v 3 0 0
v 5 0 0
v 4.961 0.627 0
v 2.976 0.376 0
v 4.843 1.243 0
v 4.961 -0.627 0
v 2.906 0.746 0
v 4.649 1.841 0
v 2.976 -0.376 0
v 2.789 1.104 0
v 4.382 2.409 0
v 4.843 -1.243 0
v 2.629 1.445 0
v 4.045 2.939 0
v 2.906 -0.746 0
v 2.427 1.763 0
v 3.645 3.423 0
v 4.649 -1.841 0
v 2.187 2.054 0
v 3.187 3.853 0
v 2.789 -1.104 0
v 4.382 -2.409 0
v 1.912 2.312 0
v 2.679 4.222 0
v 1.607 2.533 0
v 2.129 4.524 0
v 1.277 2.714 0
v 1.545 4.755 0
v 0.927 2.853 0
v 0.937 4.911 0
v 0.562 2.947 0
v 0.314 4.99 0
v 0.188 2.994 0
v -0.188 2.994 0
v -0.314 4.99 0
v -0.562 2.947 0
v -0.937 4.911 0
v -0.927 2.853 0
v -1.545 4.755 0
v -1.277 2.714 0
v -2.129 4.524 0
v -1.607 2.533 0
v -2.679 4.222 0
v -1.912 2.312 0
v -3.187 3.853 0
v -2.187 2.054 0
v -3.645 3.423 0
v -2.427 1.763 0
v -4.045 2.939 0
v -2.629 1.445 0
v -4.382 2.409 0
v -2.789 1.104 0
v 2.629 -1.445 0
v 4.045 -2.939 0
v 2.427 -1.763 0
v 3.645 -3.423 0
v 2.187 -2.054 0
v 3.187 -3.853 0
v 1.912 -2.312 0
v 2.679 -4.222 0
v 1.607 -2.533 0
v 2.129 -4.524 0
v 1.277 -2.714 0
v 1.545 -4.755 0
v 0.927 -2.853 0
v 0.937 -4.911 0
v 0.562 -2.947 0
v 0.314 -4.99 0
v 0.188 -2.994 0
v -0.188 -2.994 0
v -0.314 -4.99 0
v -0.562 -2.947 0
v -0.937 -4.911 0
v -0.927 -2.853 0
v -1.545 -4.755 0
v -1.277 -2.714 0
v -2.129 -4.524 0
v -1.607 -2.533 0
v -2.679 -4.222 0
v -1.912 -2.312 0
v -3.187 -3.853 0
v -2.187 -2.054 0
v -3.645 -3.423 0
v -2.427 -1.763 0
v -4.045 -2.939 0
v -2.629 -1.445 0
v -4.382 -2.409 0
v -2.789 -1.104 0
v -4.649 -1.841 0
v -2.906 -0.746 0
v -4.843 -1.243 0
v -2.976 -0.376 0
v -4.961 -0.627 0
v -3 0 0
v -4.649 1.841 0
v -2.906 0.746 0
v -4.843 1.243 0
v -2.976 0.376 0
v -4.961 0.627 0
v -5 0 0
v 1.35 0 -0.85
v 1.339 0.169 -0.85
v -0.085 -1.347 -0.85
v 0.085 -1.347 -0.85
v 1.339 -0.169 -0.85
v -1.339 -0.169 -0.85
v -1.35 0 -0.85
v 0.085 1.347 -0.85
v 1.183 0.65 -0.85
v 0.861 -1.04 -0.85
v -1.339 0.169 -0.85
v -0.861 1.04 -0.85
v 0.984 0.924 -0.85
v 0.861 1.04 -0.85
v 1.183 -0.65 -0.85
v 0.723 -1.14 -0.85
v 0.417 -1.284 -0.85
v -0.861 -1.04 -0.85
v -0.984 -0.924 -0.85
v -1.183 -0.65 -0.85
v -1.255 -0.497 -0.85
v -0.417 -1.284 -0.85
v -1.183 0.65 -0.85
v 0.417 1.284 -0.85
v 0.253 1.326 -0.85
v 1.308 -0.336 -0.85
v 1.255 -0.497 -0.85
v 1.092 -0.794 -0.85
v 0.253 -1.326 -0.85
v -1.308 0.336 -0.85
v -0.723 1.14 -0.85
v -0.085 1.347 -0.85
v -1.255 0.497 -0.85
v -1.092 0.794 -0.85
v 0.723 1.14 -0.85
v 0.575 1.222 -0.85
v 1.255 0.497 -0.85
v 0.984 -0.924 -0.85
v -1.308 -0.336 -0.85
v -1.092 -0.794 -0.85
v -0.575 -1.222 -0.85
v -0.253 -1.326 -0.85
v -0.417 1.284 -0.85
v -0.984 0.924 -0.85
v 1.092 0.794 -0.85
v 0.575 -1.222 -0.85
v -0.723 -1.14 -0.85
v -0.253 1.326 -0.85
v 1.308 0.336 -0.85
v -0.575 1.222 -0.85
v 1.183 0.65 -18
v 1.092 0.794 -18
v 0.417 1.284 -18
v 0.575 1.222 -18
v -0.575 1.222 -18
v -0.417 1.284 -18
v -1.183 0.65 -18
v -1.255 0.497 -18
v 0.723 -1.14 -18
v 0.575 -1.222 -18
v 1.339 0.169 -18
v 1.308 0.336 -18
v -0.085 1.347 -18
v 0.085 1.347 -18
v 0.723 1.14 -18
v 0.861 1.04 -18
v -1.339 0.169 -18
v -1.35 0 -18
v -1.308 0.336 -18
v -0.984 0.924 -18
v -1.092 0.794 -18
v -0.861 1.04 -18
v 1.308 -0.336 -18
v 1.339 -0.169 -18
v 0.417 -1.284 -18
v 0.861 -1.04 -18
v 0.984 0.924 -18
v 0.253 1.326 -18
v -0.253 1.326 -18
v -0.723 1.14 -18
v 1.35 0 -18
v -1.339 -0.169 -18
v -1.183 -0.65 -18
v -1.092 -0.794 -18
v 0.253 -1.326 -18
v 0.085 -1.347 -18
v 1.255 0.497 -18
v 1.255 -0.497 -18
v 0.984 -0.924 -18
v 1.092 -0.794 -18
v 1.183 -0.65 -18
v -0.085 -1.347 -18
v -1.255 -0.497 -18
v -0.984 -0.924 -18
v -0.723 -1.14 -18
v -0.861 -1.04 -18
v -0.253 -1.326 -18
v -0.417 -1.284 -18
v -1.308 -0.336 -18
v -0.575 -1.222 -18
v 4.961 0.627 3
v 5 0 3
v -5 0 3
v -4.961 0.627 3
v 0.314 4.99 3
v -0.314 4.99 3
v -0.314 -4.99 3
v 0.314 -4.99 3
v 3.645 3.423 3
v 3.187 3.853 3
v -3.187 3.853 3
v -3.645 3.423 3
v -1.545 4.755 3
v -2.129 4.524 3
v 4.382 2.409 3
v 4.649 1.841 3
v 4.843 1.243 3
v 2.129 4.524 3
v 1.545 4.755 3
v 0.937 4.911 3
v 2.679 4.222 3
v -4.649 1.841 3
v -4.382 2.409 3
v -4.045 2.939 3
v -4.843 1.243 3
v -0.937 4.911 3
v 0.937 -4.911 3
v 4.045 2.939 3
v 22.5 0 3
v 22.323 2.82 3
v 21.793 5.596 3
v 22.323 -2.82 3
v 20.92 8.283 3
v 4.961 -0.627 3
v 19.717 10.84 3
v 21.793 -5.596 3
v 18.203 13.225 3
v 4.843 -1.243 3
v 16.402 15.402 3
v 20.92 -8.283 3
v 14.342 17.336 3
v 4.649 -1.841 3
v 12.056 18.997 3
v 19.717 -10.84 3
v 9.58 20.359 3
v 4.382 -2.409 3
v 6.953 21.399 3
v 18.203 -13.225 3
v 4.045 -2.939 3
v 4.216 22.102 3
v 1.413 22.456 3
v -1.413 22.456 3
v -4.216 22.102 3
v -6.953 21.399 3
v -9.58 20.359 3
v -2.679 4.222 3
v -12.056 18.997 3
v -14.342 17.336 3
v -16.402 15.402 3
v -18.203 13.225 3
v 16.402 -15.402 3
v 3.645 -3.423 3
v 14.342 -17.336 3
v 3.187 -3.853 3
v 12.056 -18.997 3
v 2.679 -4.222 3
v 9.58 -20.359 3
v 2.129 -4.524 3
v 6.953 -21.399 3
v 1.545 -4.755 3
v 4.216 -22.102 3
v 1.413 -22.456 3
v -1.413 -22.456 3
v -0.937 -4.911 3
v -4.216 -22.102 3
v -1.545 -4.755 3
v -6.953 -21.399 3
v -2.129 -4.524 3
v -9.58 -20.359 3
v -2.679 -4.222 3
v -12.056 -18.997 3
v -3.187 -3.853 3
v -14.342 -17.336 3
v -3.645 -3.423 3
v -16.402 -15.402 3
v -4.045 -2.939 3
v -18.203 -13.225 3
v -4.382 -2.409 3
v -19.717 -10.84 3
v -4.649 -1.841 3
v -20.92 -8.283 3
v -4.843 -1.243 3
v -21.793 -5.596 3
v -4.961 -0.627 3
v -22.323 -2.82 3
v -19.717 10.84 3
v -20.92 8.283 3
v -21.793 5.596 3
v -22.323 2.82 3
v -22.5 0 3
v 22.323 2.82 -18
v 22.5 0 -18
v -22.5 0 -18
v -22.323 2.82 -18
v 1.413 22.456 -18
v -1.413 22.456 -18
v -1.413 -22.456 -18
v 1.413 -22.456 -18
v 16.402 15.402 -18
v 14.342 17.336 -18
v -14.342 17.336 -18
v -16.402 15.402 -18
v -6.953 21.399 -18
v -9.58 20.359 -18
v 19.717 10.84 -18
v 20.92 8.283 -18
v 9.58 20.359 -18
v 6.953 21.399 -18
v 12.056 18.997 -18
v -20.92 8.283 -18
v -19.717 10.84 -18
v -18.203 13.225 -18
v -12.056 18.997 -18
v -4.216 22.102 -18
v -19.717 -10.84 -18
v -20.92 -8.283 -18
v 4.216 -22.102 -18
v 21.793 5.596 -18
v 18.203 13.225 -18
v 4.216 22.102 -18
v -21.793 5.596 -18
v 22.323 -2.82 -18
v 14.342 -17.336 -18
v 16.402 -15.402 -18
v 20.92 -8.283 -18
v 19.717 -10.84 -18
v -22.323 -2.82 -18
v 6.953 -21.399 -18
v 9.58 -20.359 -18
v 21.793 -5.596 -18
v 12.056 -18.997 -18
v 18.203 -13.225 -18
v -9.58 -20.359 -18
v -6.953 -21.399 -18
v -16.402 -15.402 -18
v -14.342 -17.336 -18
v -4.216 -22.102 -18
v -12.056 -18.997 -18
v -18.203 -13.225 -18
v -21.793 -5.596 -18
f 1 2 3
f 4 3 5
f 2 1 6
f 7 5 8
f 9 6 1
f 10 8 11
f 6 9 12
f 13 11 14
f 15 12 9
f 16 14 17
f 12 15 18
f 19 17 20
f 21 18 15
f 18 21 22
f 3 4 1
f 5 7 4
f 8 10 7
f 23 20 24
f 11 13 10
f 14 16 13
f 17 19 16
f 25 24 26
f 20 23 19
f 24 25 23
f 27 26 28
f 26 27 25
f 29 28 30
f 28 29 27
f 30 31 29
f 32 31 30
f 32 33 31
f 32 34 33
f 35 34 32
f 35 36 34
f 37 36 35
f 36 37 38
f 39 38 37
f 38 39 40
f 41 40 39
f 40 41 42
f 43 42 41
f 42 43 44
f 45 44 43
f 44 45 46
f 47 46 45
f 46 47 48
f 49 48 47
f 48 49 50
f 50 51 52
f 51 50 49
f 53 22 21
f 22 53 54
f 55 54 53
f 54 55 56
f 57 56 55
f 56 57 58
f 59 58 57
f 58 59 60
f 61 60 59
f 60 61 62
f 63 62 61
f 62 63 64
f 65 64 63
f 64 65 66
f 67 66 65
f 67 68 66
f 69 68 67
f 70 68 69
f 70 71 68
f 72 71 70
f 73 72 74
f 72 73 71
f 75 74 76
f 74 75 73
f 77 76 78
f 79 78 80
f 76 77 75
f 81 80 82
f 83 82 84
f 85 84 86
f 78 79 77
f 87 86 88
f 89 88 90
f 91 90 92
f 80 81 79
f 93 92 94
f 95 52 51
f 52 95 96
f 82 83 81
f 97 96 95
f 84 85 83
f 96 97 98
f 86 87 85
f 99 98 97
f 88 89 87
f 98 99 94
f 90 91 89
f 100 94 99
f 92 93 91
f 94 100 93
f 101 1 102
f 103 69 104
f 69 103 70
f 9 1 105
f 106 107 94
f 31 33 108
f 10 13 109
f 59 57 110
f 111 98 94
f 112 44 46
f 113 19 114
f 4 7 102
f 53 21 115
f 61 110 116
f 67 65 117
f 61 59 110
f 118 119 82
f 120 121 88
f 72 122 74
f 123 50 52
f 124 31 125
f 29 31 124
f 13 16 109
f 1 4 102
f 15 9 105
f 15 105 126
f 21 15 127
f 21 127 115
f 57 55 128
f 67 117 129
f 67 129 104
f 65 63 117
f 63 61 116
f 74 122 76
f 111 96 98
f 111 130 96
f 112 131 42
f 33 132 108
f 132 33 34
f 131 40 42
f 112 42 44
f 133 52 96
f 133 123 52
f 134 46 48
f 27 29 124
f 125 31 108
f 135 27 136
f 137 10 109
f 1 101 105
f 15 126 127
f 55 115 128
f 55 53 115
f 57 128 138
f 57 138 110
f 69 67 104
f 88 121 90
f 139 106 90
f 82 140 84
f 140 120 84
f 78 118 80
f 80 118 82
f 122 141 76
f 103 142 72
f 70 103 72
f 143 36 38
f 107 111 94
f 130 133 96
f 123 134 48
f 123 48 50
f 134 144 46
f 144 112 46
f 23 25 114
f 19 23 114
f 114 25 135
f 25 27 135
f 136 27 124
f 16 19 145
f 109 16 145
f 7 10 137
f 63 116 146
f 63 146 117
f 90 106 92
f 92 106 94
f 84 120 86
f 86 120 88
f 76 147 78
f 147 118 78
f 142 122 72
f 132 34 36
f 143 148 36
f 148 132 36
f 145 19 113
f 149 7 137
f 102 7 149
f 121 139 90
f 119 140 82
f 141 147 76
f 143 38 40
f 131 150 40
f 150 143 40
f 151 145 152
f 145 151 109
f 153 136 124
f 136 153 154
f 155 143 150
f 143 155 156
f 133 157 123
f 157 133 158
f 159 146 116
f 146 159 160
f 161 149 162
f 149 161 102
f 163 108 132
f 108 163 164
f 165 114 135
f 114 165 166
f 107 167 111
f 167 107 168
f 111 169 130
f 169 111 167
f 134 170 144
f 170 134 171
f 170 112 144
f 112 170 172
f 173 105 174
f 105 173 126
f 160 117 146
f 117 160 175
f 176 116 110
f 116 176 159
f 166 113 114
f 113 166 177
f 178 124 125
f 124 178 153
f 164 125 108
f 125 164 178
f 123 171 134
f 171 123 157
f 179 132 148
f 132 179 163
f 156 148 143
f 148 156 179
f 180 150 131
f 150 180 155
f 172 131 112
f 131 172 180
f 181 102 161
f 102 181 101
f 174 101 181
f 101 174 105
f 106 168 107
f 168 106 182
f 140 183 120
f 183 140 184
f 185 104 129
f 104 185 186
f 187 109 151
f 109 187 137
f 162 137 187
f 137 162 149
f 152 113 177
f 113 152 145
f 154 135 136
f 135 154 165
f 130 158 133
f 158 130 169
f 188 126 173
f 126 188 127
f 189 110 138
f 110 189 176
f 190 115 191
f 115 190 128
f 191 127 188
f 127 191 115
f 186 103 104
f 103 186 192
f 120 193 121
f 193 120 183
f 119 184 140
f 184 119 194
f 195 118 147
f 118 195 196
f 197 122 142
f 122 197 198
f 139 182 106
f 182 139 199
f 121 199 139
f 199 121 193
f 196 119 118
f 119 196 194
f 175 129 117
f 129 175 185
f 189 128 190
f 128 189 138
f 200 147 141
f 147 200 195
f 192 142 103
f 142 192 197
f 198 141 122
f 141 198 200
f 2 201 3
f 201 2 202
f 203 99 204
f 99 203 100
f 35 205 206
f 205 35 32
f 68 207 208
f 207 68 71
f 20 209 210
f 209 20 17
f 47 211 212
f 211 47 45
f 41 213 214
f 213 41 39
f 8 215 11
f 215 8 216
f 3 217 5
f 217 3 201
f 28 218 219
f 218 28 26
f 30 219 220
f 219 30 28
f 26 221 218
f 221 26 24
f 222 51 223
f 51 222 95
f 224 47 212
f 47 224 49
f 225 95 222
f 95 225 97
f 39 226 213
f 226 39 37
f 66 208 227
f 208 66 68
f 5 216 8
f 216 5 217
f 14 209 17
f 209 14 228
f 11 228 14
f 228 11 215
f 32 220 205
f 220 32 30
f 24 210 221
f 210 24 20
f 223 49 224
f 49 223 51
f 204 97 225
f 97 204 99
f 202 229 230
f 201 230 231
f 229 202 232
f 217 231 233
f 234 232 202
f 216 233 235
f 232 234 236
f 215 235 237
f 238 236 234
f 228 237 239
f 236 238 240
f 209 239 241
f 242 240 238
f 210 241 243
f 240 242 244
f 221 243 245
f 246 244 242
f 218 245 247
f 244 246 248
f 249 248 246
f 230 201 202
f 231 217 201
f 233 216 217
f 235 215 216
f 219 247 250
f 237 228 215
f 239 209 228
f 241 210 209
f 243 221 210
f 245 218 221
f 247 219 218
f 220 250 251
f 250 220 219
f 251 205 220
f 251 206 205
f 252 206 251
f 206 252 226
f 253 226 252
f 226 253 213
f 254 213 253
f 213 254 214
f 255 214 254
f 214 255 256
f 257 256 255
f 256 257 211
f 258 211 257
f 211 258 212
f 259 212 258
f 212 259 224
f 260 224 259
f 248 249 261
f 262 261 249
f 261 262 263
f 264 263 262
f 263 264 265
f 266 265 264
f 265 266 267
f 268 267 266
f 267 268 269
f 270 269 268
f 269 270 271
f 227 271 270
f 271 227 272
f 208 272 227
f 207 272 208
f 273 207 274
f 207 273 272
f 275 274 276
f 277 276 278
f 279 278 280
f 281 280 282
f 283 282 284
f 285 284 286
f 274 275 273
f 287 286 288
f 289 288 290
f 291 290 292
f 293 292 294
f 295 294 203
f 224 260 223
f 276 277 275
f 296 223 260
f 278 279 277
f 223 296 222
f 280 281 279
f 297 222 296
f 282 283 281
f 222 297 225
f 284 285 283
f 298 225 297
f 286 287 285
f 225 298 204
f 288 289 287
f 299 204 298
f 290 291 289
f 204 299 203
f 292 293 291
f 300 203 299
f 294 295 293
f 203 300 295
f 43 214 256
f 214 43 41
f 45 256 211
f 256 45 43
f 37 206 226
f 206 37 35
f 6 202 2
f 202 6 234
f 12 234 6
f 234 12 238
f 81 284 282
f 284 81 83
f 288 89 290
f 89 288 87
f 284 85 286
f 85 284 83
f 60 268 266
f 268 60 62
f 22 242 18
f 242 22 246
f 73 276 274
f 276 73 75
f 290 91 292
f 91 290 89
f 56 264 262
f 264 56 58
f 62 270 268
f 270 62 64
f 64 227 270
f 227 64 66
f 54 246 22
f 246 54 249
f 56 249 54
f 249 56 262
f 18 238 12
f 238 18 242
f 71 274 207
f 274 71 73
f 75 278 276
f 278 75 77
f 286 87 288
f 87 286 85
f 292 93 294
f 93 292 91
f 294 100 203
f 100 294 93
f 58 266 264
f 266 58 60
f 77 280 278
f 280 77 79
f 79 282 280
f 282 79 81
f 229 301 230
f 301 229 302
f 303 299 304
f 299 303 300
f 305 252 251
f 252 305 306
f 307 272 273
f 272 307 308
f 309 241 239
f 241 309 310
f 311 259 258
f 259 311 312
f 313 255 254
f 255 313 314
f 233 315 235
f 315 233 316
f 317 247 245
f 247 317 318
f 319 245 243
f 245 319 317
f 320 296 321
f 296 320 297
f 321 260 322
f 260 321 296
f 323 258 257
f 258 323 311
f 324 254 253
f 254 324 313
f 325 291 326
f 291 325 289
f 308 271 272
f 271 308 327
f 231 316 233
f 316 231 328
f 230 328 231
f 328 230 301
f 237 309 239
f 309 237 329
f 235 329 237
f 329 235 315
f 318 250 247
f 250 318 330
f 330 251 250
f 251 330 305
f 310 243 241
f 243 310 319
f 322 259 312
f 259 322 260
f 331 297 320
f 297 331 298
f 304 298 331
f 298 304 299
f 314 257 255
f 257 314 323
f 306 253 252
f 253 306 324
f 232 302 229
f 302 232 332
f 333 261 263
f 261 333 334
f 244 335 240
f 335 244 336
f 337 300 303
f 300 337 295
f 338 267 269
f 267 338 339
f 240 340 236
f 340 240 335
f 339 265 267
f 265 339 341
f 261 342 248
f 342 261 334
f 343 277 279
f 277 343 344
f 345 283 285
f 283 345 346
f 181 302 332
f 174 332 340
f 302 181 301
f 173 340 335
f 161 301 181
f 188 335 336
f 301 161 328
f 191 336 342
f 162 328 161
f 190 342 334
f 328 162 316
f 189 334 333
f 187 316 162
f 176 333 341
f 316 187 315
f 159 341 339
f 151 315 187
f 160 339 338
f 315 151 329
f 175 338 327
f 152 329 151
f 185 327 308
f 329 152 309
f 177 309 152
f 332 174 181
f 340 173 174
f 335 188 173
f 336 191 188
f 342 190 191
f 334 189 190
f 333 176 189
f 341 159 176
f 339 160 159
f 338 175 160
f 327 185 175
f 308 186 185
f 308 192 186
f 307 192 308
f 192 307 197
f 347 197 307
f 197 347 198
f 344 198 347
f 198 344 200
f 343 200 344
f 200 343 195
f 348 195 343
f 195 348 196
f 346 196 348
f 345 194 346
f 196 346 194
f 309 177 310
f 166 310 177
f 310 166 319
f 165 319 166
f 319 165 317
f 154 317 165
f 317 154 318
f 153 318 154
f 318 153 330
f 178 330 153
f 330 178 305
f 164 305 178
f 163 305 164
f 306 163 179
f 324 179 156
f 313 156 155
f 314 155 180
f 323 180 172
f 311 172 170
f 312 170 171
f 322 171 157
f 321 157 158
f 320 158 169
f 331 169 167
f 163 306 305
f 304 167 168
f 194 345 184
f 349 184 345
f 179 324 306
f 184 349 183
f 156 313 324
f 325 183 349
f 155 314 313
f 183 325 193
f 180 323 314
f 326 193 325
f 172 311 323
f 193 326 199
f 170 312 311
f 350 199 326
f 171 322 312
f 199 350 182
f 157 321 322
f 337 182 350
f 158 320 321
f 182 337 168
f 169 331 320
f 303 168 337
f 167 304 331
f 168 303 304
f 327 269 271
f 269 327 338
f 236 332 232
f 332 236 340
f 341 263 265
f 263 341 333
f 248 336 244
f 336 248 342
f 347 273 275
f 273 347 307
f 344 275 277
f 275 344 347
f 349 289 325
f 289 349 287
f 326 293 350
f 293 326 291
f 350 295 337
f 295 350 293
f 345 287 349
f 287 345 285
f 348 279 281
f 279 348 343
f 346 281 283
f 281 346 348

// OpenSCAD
$fn = 50;

difference() {
	union() {
		translate(v = [0, 0, -18.0]) {
			cylinder(h = 21, r = 22.5);
		}
	}
	union() {
		translate(v = [0, 0, 0]) {
			rotate(a = [0, 0, 0]) {
				difference() {
					union() {
						translate(v = [0, 0, -21.0]) {
							cylinder(h = 21, r = 1.0);
						}
						translate(v = [0, 0, -0.85]) {
							cylinder(h = 0.85, r1 = 1.35, r2 = 3.0);
						}
						translate(v = [0, 0, -21.0]) {
							cylinder(h = 21, r = 1.35);
						}
						translate(v = [0, 0, -21.0]) {
							cylinder(h = 21, r = 1.0);
						}
					}
					union();
				}
			}
		}
		#cylinder(h = 3, r = 5.0);
	}
}
